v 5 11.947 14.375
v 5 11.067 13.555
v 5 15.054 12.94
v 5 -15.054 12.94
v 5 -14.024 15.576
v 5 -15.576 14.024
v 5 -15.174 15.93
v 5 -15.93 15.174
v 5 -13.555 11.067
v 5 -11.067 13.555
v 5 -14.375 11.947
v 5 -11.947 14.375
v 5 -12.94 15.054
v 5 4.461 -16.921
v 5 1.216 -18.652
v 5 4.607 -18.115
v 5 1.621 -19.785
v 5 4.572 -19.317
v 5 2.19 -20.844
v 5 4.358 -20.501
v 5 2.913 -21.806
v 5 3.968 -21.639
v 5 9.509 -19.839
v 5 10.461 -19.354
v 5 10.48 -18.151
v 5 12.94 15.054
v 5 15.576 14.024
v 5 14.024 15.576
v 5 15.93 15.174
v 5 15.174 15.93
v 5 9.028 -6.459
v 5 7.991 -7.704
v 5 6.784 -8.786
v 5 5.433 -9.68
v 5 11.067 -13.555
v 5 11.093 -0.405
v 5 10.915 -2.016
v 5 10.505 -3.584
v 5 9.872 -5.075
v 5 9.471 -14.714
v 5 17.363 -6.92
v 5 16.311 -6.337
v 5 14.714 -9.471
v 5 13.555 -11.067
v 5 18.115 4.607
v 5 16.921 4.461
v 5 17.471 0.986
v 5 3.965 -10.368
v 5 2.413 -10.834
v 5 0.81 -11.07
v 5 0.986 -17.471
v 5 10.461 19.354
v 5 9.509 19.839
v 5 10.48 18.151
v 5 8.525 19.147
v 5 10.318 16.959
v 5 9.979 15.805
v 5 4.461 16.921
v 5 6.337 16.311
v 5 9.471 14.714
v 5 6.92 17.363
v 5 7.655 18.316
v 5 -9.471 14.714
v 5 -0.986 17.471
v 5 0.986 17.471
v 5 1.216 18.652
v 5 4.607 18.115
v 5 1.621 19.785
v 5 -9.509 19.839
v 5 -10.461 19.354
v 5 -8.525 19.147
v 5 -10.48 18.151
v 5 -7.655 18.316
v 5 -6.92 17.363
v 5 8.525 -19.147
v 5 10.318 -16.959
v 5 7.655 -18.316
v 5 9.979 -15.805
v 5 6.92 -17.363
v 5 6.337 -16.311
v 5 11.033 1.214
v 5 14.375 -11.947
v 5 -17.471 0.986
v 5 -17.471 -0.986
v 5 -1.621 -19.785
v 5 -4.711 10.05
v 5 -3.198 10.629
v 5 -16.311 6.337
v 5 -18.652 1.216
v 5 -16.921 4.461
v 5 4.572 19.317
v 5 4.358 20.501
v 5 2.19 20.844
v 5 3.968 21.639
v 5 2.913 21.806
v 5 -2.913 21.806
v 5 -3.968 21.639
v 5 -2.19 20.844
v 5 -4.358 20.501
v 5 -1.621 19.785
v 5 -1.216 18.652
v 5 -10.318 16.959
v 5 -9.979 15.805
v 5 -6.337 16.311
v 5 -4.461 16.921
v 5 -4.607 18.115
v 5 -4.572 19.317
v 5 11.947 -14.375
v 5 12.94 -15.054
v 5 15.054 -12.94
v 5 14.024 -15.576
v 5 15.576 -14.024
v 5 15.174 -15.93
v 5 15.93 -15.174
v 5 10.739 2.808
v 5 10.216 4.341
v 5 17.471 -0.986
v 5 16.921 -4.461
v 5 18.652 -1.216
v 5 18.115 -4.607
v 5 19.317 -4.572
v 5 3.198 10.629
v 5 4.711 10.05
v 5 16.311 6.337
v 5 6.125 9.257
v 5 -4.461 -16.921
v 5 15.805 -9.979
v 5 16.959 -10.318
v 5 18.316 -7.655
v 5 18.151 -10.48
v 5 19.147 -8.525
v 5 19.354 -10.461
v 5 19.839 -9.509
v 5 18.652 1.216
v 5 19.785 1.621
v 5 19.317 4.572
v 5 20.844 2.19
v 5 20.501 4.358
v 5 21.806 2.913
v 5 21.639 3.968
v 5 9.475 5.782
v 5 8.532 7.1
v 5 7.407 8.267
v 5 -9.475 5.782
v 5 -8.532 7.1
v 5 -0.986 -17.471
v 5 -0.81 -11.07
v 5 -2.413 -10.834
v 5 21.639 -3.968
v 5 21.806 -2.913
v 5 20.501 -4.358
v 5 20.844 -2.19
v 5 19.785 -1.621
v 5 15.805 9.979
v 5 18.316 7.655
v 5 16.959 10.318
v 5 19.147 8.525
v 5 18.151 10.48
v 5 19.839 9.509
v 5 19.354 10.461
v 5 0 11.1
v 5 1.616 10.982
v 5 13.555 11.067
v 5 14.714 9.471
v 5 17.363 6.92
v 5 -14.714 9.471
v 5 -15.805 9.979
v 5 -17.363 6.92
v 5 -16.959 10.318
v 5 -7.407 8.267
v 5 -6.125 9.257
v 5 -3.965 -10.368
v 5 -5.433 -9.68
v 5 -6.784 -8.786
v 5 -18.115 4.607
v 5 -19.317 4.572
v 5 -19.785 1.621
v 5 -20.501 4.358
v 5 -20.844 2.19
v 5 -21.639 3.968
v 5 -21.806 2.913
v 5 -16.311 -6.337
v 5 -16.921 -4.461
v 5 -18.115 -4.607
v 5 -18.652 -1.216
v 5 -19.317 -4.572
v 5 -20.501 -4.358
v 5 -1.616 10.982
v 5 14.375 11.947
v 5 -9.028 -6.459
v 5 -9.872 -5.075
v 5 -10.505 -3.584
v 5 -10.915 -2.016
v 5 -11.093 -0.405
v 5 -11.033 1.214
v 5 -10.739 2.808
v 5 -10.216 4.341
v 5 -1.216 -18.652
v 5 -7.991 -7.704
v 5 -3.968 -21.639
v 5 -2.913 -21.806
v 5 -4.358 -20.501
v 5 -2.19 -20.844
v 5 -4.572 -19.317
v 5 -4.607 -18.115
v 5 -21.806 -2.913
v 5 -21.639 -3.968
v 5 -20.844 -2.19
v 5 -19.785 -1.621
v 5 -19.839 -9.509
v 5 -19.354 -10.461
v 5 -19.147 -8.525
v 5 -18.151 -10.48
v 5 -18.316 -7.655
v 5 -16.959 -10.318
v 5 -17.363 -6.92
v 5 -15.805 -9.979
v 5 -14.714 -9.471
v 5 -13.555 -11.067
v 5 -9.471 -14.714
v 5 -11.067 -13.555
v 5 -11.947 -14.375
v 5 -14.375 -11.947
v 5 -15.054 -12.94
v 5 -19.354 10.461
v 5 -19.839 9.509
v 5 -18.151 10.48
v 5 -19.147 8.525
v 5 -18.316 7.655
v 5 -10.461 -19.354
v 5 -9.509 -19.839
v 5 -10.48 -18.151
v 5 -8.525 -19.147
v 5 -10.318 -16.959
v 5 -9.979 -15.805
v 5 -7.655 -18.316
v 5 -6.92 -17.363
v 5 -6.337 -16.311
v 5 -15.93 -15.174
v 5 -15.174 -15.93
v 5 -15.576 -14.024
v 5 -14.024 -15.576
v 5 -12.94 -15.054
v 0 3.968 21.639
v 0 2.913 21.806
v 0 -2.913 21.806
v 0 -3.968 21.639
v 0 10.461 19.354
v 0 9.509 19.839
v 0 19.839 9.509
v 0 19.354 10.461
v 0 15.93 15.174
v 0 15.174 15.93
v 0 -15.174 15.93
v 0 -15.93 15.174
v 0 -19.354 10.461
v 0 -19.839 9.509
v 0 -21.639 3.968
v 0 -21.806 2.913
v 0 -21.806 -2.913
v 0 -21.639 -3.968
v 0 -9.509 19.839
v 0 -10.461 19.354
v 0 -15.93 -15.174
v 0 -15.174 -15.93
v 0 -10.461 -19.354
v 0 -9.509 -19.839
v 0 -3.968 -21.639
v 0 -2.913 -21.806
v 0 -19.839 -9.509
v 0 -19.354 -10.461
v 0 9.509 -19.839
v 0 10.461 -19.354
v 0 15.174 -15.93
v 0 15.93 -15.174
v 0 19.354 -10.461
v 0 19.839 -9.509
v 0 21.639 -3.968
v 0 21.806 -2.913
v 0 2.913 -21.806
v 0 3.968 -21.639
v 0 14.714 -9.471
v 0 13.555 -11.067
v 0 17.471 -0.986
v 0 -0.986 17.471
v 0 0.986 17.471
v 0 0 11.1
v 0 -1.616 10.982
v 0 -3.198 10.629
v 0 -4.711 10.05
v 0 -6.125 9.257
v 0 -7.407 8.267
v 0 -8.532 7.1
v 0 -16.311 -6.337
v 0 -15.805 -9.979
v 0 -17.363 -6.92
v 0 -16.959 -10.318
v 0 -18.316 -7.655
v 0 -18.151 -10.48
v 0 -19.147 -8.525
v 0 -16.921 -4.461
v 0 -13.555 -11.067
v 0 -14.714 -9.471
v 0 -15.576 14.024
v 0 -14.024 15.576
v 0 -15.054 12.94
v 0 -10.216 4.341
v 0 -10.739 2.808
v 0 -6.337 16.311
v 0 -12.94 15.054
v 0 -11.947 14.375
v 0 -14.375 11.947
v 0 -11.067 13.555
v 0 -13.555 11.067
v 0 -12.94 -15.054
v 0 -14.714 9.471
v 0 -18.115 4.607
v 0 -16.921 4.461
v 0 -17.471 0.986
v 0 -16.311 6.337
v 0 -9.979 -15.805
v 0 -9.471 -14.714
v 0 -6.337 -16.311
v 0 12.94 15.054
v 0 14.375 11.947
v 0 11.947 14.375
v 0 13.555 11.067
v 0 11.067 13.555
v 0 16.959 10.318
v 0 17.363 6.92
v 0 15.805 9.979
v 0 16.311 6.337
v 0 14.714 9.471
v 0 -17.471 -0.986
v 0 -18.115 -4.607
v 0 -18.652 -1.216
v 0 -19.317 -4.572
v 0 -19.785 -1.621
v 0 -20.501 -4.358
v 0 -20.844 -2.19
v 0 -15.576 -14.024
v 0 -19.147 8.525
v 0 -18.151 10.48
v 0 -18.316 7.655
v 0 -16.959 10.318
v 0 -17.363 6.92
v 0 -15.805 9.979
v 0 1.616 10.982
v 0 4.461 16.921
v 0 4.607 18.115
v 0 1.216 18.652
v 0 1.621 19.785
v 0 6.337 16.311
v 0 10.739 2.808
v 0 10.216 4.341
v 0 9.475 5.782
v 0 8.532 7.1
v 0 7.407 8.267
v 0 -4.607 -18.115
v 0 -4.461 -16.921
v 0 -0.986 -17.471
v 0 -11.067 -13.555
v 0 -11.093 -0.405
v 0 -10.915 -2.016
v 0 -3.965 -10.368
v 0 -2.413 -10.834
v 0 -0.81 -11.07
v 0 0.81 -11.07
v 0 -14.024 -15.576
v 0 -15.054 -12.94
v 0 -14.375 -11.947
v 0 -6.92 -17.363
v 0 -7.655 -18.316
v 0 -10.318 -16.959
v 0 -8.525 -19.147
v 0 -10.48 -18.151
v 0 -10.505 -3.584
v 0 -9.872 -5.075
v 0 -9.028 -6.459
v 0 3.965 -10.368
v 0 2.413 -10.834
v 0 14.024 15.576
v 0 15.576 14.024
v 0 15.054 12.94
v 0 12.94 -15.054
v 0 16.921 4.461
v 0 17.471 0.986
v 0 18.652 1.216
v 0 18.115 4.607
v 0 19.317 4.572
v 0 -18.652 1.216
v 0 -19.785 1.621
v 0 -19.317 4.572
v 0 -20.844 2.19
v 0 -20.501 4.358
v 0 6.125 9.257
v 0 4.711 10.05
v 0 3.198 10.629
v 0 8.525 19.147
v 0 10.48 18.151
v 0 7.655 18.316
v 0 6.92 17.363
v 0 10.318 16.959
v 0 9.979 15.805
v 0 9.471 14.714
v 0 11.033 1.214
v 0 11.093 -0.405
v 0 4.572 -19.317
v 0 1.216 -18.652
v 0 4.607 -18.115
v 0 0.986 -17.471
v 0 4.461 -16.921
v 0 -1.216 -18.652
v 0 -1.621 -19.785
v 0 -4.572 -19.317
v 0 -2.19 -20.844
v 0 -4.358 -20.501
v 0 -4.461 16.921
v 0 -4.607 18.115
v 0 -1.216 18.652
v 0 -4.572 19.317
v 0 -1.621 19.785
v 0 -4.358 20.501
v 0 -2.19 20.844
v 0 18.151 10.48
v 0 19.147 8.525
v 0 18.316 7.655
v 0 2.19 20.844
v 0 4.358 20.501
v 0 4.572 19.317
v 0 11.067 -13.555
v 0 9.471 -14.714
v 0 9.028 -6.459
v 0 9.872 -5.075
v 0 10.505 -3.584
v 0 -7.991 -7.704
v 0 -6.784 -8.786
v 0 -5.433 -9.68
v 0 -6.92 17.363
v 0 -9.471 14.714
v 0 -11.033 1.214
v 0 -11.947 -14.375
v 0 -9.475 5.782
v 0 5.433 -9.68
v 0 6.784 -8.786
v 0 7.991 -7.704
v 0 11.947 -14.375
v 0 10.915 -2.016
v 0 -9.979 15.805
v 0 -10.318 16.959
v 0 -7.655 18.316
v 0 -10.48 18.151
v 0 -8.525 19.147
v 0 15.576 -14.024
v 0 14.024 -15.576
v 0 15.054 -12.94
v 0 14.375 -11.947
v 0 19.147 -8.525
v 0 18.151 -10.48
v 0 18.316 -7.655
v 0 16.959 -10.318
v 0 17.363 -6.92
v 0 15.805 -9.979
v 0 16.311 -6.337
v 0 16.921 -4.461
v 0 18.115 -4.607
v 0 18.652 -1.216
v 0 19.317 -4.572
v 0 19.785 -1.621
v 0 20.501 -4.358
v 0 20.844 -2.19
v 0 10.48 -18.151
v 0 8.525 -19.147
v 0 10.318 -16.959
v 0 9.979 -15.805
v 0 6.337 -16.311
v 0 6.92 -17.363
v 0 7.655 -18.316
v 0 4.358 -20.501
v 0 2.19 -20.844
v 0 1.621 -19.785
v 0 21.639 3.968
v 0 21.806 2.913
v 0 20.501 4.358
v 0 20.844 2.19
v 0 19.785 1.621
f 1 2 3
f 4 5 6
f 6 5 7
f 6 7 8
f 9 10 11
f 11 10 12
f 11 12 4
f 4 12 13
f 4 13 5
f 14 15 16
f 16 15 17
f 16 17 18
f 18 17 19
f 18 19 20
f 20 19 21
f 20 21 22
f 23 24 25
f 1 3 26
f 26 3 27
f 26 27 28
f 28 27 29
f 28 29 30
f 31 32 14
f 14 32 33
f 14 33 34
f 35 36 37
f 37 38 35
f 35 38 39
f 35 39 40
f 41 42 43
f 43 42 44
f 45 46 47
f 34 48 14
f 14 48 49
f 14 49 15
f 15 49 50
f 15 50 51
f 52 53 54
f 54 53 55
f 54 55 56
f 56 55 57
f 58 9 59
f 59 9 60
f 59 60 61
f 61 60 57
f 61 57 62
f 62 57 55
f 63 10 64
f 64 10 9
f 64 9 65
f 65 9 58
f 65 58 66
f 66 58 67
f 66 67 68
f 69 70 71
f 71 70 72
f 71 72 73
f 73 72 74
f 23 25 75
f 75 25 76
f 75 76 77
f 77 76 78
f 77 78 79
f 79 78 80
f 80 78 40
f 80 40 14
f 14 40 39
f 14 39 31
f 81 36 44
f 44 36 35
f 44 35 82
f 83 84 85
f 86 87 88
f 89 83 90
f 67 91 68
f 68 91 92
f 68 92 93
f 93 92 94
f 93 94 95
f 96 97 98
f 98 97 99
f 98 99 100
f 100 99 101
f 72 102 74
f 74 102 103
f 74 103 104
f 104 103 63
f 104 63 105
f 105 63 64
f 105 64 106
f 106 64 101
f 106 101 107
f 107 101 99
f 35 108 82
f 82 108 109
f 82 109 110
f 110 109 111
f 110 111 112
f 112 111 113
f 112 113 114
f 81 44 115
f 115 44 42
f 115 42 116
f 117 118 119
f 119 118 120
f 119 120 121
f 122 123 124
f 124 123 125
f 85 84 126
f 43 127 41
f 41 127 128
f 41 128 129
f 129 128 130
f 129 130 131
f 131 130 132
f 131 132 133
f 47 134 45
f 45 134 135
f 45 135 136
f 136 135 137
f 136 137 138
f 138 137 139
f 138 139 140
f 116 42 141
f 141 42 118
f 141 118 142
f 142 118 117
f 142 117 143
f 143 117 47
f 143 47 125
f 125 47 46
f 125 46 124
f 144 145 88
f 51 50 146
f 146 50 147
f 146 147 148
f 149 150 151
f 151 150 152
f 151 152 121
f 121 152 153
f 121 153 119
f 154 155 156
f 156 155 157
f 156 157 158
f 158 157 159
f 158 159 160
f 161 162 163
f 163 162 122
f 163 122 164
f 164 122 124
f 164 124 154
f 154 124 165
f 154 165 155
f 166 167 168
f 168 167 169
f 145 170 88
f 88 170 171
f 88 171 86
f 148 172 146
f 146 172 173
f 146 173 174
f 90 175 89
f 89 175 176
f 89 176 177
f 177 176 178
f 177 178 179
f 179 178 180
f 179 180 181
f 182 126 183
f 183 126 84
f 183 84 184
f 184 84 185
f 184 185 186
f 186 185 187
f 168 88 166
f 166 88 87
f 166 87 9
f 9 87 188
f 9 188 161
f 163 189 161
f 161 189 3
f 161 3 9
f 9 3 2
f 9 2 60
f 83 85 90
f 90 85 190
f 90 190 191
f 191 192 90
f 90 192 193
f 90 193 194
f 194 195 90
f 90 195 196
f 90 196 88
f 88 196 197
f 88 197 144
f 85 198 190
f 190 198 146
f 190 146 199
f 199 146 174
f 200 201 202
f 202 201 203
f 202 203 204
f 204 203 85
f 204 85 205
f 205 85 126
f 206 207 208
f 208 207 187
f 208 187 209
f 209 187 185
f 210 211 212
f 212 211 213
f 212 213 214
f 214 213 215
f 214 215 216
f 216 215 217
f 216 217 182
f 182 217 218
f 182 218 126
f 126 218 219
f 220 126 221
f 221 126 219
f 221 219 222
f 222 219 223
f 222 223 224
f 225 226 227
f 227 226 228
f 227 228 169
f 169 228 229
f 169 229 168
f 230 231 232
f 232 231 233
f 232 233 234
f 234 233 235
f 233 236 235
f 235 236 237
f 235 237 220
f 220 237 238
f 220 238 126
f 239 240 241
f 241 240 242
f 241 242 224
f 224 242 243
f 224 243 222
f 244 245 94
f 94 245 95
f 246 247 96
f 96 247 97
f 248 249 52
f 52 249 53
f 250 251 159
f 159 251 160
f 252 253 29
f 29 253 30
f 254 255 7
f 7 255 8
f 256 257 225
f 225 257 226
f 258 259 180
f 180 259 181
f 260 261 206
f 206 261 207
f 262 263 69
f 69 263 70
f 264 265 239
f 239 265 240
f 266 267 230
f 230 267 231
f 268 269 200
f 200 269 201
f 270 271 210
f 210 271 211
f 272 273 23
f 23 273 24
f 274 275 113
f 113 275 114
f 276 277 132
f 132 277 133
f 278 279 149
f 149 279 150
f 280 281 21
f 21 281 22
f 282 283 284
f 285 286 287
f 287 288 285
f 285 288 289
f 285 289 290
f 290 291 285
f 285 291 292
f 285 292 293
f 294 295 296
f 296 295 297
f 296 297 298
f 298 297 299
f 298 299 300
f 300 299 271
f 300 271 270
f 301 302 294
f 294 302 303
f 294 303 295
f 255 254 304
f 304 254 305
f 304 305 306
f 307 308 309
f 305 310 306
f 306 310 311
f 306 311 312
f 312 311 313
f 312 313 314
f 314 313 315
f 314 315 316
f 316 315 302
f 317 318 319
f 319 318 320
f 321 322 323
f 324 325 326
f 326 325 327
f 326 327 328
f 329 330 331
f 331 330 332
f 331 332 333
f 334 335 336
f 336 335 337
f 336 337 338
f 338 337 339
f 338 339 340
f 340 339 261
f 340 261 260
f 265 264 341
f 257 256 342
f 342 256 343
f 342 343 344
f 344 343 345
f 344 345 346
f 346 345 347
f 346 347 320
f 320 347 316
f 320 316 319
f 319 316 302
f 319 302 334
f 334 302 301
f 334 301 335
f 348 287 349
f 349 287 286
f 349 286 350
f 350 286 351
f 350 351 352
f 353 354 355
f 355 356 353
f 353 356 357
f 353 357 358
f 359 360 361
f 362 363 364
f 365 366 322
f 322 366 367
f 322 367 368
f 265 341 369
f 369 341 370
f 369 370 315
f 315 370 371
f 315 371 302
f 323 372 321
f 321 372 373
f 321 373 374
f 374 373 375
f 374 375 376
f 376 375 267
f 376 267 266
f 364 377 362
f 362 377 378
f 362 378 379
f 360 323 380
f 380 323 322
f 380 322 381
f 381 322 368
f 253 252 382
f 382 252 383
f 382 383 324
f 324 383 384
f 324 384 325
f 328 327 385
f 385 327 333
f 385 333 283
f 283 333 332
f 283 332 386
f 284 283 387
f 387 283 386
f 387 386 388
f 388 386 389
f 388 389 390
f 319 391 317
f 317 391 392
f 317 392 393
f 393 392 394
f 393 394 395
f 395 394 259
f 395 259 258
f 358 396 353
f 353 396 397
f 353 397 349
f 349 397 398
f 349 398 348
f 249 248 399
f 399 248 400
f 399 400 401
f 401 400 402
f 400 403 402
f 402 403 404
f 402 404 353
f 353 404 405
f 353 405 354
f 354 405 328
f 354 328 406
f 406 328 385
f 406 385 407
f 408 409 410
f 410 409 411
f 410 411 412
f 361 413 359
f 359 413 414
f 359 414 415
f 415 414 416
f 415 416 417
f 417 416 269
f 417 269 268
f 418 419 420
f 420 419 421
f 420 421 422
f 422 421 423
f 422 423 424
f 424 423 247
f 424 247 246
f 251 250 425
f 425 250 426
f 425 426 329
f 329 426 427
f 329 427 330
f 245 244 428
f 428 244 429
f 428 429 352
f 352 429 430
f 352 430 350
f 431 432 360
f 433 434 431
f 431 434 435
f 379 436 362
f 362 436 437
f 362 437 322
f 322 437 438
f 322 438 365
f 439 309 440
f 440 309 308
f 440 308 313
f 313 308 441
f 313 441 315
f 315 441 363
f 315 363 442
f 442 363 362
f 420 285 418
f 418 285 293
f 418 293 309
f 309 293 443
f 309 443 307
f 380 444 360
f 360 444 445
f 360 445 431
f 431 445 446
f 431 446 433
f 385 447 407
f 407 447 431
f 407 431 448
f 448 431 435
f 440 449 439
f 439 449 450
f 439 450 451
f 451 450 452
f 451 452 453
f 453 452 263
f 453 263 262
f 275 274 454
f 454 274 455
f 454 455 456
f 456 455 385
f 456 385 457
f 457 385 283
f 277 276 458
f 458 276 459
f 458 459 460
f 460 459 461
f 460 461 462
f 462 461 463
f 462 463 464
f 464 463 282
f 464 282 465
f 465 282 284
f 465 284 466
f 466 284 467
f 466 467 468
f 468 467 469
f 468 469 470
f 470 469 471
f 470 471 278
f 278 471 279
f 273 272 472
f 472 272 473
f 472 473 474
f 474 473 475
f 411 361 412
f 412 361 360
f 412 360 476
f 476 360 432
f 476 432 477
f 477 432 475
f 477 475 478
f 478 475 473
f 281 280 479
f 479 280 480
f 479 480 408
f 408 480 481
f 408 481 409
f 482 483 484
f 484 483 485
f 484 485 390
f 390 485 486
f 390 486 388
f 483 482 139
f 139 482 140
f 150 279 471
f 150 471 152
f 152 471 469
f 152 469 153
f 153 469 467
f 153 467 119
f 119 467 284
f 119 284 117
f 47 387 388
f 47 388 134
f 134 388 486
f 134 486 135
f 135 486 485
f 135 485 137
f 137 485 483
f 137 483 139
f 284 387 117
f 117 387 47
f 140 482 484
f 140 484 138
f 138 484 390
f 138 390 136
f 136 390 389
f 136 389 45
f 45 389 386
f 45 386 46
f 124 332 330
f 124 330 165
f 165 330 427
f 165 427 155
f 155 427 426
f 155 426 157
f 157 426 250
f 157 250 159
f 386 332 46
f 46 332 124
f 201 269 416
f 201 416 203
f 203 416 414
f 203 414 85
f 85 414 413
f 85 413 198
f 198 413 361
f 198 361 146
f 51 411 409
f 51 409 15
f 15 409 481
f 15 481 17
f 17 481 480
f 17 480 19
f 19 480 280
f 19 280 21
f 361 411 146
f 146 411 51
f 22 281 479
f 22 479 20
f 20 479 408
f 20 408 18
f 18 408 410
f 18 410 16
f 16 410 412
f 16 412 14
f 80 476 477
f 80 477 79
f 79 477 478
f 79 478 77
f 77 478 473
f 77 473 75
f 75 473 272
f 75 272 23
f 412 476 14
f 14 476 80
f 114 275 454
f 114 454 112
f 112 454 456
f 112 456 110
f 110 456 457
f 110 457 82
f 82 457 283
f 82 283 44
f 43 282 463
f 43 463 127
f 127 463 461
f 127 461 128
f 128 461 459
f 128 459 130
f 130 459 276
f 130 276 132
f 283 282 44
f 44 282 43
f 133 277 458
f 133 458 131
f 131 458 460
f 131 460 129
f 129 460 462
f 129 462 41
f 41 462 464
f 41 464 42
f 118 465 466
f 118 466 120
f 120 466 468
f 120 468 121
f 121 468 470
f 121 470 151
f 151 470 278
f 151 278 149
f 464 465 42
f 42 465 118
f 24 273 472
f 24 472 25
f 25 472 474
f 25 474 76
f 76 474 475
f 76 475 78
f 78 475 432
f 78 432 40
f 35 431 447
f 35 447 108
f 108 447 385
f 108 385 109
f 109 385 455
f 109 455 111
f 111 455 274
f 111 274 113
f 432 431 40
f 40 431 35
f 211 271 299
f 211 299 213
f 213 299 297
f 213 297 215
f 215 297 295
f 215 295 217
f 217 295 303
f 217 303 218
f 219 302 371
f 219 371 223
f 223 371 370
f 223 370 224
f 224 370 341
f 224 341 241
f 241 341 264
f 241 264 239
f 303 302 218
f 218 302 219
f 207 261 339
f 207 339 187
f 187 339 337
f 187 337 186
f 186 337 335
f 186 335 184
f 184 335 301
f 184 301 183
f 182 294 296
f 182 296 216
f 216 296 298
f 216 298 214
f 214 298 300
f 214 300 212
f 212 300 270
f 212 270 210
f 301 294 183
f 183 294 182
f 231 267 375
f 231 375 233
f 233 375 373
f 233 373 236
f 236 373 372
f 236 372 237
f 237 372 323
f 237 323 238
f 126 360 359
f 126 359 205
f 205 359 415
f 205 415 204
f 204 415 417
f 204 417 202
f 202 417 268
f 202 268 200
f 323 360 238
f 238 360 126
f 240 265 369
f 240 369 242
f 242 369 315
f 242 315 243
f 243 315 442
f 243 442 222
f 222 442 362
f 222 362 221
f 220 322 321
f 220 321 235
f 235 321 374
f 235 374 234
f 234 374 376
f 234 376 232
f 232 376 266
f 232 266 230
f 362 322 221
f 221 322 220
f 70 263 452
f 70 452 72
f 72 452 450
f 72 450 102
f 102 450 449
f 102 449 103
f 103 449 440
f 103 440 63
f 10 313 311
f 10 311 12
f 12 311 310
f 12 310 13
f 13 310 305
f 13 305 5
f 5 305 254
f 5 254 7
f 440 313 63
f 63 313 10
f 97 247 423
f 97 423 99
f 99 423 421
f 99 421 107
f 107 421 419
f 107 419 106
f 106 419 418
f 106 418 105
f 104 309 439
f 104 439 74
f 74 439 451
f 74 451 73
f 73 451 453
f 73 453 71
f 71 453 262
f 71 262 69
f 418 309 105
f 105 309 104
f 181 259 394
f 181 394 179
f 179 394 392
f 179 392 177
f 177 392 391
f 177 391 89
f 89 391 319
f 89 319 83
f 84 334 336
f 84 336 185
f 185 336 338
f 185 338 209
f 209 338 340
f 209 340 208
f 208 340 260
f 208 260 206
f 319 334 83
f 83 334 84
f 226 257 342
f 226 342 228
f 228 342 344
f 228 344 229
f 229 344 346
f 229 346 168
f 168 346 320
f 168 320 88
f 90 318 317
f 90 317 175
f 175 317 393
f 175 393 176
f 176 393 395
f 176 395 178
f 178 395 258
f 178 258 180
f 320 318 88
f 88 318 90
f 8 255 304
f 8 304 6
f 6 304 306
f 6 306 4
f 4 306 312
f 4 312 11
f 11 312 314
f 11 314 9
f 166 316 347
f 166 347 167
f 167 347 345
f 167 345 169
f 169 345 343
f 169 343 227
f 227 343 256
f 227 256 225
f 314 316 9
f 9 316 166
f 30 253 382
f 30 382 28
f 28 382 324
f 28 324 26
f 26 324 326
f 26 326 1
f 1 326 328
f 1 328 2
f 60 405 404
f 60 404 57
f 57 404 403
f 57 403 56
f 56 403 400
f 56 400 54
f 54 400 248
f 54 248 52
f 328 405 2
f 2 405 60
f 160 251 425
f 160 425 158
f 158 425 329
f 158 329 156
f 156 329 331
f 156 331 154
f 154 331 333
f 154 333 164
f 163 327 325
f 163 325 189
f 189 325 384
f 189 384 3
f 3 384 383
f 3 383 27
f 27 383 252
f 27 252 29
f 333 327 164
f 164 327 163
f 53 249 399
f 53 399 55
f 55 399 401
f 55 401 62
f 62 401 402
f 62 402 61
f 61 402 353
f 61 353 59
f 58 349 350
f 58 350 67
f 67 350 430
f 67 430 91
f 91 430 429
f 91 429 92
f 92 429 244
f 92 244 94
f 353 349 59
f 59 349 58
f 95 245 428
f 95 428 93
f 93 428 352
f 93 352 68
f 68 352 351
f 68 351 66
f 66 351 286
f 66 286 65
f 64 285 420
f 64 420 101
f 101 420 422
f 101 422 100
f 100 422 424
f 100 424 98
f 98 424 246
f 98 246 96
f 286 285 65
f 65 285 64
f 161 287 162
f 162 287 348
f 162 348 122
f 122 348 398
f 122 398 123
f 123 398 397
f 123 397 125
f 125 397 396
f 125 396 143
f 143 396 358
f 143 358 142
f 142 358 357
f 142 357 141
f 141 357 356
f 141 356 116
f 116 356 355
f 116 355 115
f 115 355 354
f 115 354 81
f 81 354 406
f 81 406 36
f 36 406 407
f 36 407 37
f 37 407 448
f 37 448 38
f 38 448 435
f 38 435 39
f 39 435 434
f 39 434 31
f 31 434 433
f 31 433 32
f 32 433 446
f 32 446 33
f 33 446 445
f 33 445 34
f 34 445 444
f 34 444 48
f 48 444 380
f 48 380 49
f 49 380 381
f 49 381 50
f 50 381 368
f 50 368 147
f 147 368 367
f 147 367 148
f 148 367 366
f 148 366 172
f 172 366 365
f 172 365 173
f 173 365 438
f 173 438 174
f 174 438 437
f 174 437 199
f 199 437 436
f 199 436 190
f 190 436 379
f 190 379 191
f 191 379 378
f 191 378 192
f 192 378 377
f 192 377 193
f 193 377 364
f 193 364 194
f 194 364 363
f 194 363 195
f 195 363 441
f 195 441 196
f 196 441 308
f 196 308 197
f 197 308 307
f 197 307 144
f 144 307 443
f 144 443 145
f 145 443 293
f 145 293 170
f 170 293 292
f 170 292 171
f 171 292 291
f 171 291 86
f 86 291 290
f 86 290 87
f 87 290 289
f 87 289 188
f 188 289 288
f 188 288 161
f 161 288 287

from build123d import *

# Parameters (mm, degrees)
BASPROSKE_W        = 5
BASPROSKE_H        = 22
TOOTHCUT_DEPTH     = 32.511902513
TEETHCUTS_COUNT    = 20
TEETHCUTS_ANGLE    = 342
BORSKE_R           = 0.5
BORE_DEPTH         = 50.0000508
SKETCH1_R          = 11.1
CUT_EXTRUDE1_DEPTH = 10


with BuildPart() as part:
    # BasProSke → Base-Revolve (revolve)
    with BuildSketch(Plane(origin=(0, 0, 0), x_dir=(1, 0, 0), z_dir=(0, 1, 0)), mode=Mode.PRIVATE) as base_revolve_sk:
        with Locations((2.5, 11)):
            Rectangle(BASPROSKE_W, BASPROSKE_H)
    revolve(base_revolve_sk.sketch.rotate(Axis((-10, 0, 0), (1, 0, 0)), 180), axis=Axis((-10, 0, 0), (1, 0, 0)))

    # TooCutSke → ToothCut (cut, through all)
    with BuildSketch(Plane(origin=(0, 0, 0), x_dir=(0, 0, -1), z_dir=(1, 0, 0))):
        with BuildLine():
            ThreePointArc((0.986171591, 17.471189616), (0, 17.499), (-0.986171591, 17.471189616))
            ThreePointArc((-0.986171591, 17.471189616), (-1.626916196, 19.798789858), (-2.932850173, 21.829260982))
            ThreePointArc((-2.932850173, 21.829260982), (0, 22.0254), (2.932850173, 21.829260982))
            ThreePointArc((2.932850173, 21.829260982), (1.626916196, 19.798789858), (0.986171591, 17.471189616))
        make_face()
    toothcut = extrude(amount=TOOTHCUT_DEPTH, mode=Mode.SUBTRACT)

    # TeethCuts: ToothCut ×20 about axis
    teethcuts_axis = Axis((-10, 0, 0), (1, 0, 0))
    for i in range(1, TEETHCUTS_COUNT):
        add(toothcut.rotate(teethcuts_axis, i * TEETHCUTS_ANGLE / (TEETHCUTS_COUNT - 1)), mode=Mode.SUBTRACT)

    # BorSke → Bore (cut, symmetric)
    with BuildSketch(Plane(origin=(0, 0, 0), x_dir=(0, 0, -1), z_dir=(1, 0, 0))):
        with Locations(Location((0, 0, 0), (0, 0, 180))):
            Circle(BORSKE_R)
    extrude(amount=BORE_DEPTH, both=True, mode=Mode.SUBTRACT)

    # Sketch1 → Cut-Extrude1 (cut)
    with BuildSketch(Plane.ZY):
        Circle(SKETCH1_R)
    extrude(amount=-CUT_EXTRUDE1_DEPTH, mode=Mode.SUBTRACT)


solid = part.part
